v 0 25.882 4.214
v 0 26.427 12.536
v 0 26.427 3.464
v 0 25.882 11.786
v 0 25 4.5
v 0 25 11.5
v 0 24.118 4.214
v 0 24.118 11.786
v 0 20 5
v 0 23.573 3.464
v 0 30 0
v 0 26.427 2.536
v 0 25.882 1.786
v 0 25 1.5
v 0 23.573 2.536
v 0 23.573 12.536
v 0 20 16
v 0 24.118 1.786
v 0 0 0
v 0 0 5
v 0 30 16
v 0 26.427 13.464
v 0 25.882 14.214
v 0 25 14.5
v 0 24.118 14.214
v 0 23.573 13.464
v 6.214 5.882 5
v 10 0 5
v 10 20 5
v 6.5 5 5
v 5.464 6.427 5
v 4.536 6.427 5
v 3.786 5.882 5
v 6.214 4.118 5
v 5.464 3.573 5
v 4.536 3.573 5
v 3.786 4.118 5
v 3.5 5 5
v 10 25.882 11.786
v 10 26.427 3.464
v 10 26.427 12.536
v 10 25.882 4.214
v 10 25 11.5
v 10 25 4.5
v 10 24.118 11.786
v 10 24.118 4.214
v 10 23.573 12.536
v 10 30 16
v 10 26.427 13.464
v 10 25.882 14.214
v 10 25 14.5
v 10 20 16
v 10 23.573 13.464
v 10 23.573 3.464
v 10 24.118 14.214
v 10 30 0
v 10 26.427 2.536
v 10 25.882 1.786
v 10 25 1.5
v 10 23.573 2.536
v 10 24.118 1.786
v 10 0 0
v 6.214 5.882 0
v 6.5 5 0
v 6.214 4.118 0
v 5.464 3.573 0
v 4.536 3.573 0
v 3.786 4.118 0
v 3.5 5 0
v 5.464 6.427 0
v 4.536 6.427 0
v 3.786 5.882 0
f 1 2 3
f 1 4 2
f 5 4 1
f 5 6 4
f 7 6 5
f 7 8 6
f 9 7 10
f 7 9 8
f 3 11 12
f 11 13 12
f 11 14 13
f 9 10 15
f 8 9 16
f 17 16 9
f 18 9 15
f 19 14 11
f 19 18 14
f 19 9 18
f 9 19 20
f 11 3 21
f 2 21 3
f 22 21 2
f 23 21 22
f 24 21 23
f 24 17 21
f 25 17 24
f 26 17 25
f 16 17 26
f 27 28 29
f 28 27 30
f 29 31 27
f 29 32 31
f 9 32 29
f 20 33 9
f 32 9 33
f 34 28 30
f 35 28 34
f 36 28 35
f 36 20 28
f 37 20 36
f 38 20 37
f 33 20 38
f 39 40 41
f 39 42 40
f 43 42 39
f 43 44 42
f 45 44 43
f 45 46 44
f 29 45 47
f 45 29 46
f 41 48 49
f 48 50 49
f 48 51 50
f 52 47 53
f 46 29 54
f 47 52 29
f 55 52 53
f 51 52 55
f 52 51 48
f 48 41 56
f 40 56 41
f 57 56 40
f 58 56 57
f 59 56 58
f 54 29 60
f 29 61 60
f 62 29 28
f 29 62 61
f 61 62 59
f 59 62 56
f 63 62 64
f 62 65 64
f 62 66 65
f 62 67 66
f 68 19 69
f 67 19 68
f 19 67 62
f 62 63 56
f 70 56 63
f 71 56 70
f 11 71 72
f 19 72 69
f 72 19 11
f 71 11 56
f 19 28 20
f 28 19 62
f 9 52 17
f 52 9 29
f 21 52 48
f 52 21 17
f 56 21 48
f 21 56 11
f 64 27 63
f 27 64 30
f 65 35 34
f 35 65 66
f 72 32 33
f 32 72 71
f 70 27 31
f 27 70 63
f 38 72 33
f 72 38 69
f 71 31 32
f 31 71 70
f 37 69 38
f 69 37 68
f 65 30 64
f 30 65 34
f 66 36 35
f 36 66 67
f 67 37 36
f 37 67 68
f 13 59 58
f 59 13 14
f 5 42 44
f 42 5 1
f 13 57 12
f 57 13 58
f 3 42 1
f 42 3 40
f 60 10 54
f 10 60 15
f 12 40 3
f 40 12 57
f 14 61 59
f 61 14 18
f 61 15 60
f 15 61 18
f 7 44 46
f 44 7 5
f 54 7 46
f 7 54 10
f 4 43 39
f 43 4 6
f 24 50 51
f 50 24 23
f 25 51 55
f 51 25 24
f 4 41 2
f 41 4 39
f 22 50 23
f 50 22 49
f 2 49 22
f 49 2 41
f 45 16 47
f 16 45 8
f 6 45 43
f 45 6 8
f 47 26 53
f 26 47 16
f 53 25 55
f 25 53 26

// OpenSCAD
width = 10;
m3holedistance =20;
difference() {
    union() {
        cube([width,20,5],false);
        
        translate([0,20,0]) 
        cube([width,10,16],false);
        
   
    }
    
    translate([5,5,0]) 
        cylinder(h=100,d=3,center=false,$fn=10);
    
    
    translate([0,25,3]) 
    rotate([0,90,0])
        cylinder(h=100,d=3,center=false,$fn=10);
    
    translate([0,25,13]) 
    rotate([0,90,0])
        cylinder(h=100,d=3,center=false,$fn=10);
}
